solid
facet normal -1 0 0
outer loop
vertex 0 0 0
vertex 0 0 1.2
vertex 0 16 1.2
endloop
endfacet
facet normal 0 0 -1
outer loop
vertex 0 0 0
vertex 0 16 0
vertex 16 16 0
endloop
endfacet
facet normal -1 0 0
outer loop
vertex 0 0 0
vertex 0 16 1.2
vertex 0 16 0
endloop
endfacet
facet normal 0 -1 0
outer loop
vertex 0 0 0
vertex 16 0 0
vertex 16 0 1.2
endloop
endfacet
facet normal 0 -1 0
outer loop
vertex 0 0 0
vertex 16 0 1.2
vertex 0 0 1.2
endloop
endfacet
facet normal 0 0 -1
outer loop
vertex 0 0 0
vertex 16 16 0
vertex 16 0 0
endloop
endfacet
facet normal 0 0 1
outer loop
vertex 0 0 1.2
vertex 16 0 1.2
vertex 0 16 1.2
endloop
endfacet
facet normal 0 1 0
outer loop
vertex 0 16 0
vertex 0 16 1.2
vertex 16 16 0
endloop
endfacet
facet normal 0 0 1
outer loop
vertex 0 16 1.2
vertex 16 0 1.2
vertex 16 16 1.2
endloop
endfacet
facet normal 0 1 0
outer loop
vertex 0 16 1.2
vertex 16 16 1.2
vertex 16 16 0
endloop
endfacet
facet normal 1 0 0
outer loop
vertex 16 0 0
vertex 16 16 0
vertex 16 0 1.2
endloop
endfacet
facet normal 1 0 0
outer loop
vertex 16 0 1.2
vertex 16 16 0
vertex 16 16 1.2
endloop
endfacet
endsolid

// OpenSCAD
/* Warning, this is a very basic generator with a lot of approximation 
input data : [TFBGA, XHB, 16x16x1.2mm, 442, , B, C04-00686B]
generated by com.zoubworld.electronics.cad.model3d.Basic
Date : Sun Feb 15 10:50:49 CET 2026
*/

//body
color("black")
translate([0,0,0])
cube([16.0,16.0,1.2], center=false);
